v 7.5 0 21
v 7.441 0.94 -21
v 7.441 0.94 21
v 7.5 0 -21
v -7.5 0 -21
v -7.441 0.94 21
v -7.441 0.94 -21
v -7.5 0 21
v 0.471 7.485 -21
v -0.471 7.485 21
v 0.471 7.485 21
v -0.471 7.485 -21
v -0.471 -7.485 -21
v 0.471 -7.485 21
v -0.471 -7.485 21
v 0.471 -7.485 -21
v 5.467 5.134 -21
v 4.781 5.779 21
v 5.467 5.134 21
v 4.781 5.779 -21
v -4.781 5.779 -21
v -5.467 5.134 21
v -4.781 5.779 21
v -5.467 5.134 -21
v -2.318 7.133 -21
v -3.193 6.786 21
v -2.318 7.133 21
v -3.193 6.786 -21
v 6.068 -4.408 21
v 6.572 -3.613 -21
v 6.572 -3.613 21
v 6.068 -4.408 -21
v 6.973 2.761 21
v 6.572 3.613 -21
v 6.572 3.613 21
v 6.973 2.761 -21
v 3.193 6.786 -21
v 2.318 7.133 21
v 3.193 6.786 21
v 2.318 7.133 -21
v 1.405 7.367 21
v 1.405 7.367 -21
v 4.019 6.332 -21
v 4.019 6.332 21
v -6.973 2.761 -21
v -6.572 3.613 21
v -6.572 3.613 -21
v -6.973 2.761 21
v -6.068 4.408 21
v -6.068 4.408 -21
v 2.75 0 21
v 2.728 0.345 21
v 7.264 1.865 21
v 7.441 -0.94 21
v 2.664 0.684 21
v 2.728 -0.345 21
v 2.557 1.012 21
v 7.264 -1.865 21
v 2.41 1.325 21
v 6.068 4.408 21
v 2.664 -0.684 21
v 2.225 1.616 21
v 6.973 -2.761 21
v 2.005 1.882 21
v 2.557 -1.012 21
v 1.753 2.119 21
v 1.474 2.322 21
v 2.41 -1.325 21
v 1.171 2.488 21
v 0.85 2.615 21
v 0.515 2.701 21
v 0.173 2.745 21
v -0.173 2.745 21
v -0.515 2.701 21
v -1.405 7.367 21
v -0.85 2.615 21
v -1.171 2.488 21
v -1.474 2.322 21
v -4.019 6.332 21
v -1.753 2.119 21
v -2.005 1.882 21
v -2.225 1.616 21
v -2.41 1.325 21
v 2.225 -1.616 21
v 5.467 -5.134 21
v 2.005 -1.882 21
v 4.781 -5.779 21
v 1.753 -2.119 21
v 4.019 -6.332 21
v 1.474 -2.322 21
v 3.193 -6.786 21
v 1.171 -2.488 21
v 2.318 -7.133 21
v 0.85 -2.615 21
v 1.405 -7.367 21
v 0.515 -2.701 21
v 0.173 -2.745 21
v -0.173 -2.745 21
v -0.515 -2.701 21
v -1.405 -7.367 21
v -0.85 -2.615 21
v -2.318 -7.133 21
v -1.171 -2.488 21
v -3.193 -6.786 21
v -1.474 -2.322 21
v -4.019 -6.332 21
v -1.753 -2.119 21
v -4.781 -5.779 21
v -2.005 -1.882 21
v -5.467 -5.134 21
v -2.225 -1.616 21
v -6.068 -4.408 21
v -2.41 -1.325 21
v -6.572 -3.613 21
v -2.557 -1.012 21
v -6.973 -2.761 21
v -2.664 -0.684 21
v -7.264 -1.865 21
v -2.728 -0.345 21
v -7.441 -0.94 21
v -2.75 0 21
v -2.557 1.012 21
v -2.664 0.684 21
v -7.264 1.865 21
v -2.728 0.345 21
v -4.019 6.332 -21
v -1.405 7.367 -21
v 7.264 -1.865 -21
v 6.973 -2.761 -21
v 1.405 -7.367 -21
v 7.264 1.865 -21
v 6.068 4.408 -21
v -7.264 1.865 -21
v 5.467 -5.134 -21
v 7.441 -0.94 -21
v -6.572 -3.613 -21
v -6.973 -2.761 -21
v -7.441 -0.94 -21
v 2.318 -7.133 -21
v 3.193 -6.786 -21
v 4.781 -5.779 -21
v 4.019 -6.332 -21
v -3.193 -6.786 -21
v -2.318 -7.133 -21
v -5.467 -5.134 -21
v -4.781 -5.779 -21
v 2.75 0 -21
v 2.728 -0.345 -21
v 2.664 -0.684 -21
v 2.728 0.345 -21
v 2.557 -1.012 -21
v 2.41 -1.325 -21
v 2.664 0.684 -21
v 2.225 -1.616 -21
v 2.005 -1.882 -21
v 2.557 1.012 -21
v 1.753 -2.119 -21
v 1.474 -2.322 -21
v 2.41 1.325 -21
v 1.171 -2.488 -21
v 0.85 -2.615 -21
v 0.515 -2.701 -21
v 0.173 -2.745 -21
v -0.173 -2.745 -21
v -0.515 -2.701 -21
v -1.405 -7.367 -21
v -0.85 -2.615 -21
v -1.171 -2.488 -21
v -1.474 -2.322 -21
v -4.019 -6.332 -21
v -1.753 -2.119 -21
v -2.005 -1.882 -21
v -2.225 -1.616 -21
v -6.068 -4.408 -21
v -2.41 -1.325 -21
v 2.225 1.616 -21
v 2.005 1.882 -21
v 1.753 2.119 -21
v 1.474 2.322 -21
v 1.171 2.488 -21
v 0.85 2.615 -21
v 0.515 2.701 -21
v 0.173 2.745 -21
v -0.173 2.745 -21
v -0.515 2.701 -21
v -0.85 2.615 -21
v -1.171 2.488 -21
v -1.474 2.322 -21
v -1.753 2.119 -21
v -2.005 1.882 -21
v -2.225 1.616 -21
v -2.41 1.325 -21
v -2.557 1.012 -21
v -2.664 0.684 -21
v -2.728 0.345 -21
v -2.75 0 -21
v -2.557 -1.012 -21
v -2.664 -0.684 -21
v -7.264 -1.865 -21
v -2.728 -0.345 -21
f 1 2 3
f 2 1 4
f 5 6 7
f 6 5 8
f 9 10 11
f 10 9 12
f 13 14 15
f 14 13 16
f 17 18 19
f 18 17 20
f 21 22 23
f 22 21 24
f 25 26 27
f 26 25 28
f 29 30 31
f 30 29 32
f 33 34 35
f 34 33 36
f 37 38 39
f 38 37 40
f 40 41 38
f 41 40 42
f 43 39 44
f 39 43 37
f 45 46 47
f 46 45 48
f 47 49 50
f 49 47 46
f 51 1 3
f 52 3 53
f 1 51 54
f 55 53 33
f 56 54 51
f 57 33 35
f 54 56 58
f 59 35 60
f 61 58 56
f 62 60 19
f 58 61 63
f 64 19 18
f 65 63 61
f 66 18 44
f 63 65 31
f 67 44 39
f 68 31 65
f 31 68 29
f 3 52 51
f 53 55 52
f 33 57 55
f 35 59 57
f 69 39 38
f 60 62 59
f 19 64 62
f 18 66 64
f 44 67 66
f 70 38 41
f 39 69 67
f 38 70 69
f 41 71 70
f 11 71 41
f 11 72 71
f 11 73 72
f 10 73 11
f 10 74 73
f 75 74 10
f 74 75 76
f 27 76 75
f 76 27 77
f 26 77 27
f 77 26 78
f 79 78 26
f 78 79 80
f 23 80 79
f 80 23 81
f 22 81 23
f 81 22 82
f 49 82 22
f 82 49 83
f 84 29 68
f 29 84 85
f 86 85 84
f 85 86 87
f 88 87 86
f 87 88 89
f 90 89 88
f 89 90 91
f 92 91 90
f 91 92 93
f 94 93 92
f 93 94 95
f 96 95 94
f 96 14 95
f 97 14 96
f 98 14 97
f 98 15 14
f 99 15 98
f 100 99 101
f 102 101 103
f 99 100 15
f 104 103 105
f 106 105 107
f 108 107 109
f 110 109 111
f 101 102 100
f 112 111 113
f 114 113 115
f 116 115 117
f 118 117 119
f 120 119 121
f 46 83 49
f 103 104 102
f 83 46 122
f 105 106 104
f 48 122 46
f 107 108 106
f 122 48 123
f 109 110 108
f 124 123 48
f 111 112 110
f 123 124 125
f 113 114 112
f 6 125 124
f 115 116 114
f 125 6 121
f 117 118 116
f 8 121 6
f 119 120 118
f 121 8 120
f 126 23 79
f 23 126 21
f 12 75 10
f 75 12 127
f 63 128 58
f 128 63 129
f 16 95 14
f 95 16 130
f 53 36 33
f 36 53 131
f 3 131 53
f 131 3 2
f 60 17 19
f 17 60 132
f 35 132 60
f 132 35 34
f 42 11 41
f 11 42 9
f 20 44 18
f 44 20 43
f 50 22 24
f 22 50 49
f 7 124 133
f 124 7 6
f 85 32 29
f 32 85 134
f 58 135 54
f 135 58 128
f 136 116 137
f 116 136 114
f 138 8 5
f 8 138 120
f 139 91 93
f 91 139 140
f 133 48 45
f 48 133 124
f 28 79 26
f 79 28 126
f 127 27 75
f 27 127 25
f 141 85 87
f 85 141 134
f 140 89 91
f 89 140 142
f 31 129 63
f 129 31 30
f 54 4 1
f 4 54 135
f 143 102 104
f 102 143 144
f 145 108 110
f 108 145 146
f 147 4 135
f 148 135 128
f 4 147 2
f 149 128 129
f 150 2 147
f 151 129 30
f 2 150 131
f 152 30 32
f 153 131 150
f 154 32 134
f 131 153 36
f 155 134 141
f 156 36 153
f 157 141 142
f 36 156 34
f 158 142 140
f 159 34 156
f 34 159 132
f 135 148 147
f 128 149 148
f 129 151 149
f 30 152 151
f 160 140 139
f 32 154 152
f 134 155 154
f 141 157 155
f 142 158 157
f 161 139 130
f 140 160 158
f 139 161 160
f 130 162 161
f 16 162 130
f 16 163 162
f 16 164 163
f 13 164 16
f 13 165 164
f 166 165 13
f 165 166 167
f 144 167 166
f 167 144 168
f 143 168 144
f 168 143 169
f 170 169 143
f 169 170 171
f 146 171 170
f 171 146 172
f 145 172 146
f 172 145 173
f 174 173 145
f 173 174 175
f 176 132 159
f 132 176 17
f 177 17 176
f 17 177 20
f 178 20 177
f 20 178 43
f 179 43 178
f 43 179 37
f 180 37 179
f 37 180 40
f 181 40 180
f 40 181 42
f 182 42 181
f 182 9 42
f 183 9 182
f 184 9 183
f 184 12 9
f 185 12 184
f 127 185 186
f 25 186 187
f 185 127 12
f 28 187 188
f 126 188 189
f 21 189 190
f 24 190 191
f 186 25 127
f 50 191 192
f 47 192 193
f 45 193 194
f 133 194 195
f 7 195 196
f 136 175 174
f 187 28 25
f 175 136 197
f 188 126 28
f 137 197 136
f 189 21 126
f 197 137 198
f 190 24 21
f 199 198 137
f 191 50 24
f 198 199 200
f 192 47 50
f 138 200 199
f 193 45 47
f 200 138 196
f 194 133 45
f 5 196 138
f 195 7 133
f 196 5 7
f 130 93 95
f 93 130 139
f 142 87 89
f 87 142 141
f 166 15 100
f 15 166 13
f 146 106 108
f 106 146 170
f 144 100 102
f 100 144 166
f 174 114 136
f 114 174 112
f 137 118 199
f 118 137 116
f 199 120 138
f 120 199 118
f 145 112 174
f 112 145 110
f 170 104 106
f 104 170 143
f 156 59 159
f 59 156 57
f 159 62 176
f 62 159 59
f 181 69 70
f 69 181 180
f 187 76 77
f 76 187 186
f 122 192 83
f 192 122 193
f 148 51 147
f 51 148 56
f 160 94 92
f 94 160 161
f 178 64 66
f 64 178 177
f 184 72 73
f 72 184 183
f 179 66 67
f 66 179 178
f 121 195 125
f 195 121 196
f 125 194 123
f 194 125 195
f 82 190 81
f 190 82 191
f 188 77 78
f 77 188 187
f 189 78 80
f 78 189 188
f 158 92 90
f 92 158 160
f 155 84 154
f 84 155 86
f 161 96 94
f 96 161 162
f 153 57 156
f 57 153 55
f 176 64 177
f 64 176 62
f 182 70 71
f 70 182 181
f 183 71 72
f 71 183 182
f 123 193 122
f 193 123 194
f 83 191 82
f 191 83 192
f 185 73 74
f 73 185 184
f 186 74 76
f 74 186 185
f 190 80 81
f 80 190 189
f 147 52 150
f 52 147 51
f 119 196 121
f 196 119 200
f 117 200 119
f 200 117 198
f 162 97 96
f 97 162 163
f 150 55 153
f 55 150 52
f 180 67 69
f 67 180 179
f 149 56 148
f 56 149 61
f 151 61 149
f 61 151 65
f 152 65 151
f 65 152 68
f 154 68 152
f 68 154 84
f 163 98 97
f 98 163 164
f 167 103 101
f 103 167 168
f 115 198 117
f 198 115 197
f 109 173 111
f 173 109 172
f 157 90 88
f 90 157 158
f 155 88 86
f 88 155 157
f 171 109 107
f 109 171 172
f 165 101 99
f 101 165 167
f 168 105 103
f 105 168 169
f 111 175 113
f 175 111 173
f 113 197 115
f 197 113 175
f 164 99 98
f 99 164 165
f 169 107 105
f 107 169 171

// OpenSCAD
$fn = 50;


difference() {
	union() {
		translate(v = [0, 0, -21.0000000000]) {
			cylinder(h = 42, r = 7.5000000000);
		}
	}
	union() {
		translate(v = [0, 0, -100.0000000000]) {
			cylinder(h = 200, r = 2.7500000000);
		}
	}
}
